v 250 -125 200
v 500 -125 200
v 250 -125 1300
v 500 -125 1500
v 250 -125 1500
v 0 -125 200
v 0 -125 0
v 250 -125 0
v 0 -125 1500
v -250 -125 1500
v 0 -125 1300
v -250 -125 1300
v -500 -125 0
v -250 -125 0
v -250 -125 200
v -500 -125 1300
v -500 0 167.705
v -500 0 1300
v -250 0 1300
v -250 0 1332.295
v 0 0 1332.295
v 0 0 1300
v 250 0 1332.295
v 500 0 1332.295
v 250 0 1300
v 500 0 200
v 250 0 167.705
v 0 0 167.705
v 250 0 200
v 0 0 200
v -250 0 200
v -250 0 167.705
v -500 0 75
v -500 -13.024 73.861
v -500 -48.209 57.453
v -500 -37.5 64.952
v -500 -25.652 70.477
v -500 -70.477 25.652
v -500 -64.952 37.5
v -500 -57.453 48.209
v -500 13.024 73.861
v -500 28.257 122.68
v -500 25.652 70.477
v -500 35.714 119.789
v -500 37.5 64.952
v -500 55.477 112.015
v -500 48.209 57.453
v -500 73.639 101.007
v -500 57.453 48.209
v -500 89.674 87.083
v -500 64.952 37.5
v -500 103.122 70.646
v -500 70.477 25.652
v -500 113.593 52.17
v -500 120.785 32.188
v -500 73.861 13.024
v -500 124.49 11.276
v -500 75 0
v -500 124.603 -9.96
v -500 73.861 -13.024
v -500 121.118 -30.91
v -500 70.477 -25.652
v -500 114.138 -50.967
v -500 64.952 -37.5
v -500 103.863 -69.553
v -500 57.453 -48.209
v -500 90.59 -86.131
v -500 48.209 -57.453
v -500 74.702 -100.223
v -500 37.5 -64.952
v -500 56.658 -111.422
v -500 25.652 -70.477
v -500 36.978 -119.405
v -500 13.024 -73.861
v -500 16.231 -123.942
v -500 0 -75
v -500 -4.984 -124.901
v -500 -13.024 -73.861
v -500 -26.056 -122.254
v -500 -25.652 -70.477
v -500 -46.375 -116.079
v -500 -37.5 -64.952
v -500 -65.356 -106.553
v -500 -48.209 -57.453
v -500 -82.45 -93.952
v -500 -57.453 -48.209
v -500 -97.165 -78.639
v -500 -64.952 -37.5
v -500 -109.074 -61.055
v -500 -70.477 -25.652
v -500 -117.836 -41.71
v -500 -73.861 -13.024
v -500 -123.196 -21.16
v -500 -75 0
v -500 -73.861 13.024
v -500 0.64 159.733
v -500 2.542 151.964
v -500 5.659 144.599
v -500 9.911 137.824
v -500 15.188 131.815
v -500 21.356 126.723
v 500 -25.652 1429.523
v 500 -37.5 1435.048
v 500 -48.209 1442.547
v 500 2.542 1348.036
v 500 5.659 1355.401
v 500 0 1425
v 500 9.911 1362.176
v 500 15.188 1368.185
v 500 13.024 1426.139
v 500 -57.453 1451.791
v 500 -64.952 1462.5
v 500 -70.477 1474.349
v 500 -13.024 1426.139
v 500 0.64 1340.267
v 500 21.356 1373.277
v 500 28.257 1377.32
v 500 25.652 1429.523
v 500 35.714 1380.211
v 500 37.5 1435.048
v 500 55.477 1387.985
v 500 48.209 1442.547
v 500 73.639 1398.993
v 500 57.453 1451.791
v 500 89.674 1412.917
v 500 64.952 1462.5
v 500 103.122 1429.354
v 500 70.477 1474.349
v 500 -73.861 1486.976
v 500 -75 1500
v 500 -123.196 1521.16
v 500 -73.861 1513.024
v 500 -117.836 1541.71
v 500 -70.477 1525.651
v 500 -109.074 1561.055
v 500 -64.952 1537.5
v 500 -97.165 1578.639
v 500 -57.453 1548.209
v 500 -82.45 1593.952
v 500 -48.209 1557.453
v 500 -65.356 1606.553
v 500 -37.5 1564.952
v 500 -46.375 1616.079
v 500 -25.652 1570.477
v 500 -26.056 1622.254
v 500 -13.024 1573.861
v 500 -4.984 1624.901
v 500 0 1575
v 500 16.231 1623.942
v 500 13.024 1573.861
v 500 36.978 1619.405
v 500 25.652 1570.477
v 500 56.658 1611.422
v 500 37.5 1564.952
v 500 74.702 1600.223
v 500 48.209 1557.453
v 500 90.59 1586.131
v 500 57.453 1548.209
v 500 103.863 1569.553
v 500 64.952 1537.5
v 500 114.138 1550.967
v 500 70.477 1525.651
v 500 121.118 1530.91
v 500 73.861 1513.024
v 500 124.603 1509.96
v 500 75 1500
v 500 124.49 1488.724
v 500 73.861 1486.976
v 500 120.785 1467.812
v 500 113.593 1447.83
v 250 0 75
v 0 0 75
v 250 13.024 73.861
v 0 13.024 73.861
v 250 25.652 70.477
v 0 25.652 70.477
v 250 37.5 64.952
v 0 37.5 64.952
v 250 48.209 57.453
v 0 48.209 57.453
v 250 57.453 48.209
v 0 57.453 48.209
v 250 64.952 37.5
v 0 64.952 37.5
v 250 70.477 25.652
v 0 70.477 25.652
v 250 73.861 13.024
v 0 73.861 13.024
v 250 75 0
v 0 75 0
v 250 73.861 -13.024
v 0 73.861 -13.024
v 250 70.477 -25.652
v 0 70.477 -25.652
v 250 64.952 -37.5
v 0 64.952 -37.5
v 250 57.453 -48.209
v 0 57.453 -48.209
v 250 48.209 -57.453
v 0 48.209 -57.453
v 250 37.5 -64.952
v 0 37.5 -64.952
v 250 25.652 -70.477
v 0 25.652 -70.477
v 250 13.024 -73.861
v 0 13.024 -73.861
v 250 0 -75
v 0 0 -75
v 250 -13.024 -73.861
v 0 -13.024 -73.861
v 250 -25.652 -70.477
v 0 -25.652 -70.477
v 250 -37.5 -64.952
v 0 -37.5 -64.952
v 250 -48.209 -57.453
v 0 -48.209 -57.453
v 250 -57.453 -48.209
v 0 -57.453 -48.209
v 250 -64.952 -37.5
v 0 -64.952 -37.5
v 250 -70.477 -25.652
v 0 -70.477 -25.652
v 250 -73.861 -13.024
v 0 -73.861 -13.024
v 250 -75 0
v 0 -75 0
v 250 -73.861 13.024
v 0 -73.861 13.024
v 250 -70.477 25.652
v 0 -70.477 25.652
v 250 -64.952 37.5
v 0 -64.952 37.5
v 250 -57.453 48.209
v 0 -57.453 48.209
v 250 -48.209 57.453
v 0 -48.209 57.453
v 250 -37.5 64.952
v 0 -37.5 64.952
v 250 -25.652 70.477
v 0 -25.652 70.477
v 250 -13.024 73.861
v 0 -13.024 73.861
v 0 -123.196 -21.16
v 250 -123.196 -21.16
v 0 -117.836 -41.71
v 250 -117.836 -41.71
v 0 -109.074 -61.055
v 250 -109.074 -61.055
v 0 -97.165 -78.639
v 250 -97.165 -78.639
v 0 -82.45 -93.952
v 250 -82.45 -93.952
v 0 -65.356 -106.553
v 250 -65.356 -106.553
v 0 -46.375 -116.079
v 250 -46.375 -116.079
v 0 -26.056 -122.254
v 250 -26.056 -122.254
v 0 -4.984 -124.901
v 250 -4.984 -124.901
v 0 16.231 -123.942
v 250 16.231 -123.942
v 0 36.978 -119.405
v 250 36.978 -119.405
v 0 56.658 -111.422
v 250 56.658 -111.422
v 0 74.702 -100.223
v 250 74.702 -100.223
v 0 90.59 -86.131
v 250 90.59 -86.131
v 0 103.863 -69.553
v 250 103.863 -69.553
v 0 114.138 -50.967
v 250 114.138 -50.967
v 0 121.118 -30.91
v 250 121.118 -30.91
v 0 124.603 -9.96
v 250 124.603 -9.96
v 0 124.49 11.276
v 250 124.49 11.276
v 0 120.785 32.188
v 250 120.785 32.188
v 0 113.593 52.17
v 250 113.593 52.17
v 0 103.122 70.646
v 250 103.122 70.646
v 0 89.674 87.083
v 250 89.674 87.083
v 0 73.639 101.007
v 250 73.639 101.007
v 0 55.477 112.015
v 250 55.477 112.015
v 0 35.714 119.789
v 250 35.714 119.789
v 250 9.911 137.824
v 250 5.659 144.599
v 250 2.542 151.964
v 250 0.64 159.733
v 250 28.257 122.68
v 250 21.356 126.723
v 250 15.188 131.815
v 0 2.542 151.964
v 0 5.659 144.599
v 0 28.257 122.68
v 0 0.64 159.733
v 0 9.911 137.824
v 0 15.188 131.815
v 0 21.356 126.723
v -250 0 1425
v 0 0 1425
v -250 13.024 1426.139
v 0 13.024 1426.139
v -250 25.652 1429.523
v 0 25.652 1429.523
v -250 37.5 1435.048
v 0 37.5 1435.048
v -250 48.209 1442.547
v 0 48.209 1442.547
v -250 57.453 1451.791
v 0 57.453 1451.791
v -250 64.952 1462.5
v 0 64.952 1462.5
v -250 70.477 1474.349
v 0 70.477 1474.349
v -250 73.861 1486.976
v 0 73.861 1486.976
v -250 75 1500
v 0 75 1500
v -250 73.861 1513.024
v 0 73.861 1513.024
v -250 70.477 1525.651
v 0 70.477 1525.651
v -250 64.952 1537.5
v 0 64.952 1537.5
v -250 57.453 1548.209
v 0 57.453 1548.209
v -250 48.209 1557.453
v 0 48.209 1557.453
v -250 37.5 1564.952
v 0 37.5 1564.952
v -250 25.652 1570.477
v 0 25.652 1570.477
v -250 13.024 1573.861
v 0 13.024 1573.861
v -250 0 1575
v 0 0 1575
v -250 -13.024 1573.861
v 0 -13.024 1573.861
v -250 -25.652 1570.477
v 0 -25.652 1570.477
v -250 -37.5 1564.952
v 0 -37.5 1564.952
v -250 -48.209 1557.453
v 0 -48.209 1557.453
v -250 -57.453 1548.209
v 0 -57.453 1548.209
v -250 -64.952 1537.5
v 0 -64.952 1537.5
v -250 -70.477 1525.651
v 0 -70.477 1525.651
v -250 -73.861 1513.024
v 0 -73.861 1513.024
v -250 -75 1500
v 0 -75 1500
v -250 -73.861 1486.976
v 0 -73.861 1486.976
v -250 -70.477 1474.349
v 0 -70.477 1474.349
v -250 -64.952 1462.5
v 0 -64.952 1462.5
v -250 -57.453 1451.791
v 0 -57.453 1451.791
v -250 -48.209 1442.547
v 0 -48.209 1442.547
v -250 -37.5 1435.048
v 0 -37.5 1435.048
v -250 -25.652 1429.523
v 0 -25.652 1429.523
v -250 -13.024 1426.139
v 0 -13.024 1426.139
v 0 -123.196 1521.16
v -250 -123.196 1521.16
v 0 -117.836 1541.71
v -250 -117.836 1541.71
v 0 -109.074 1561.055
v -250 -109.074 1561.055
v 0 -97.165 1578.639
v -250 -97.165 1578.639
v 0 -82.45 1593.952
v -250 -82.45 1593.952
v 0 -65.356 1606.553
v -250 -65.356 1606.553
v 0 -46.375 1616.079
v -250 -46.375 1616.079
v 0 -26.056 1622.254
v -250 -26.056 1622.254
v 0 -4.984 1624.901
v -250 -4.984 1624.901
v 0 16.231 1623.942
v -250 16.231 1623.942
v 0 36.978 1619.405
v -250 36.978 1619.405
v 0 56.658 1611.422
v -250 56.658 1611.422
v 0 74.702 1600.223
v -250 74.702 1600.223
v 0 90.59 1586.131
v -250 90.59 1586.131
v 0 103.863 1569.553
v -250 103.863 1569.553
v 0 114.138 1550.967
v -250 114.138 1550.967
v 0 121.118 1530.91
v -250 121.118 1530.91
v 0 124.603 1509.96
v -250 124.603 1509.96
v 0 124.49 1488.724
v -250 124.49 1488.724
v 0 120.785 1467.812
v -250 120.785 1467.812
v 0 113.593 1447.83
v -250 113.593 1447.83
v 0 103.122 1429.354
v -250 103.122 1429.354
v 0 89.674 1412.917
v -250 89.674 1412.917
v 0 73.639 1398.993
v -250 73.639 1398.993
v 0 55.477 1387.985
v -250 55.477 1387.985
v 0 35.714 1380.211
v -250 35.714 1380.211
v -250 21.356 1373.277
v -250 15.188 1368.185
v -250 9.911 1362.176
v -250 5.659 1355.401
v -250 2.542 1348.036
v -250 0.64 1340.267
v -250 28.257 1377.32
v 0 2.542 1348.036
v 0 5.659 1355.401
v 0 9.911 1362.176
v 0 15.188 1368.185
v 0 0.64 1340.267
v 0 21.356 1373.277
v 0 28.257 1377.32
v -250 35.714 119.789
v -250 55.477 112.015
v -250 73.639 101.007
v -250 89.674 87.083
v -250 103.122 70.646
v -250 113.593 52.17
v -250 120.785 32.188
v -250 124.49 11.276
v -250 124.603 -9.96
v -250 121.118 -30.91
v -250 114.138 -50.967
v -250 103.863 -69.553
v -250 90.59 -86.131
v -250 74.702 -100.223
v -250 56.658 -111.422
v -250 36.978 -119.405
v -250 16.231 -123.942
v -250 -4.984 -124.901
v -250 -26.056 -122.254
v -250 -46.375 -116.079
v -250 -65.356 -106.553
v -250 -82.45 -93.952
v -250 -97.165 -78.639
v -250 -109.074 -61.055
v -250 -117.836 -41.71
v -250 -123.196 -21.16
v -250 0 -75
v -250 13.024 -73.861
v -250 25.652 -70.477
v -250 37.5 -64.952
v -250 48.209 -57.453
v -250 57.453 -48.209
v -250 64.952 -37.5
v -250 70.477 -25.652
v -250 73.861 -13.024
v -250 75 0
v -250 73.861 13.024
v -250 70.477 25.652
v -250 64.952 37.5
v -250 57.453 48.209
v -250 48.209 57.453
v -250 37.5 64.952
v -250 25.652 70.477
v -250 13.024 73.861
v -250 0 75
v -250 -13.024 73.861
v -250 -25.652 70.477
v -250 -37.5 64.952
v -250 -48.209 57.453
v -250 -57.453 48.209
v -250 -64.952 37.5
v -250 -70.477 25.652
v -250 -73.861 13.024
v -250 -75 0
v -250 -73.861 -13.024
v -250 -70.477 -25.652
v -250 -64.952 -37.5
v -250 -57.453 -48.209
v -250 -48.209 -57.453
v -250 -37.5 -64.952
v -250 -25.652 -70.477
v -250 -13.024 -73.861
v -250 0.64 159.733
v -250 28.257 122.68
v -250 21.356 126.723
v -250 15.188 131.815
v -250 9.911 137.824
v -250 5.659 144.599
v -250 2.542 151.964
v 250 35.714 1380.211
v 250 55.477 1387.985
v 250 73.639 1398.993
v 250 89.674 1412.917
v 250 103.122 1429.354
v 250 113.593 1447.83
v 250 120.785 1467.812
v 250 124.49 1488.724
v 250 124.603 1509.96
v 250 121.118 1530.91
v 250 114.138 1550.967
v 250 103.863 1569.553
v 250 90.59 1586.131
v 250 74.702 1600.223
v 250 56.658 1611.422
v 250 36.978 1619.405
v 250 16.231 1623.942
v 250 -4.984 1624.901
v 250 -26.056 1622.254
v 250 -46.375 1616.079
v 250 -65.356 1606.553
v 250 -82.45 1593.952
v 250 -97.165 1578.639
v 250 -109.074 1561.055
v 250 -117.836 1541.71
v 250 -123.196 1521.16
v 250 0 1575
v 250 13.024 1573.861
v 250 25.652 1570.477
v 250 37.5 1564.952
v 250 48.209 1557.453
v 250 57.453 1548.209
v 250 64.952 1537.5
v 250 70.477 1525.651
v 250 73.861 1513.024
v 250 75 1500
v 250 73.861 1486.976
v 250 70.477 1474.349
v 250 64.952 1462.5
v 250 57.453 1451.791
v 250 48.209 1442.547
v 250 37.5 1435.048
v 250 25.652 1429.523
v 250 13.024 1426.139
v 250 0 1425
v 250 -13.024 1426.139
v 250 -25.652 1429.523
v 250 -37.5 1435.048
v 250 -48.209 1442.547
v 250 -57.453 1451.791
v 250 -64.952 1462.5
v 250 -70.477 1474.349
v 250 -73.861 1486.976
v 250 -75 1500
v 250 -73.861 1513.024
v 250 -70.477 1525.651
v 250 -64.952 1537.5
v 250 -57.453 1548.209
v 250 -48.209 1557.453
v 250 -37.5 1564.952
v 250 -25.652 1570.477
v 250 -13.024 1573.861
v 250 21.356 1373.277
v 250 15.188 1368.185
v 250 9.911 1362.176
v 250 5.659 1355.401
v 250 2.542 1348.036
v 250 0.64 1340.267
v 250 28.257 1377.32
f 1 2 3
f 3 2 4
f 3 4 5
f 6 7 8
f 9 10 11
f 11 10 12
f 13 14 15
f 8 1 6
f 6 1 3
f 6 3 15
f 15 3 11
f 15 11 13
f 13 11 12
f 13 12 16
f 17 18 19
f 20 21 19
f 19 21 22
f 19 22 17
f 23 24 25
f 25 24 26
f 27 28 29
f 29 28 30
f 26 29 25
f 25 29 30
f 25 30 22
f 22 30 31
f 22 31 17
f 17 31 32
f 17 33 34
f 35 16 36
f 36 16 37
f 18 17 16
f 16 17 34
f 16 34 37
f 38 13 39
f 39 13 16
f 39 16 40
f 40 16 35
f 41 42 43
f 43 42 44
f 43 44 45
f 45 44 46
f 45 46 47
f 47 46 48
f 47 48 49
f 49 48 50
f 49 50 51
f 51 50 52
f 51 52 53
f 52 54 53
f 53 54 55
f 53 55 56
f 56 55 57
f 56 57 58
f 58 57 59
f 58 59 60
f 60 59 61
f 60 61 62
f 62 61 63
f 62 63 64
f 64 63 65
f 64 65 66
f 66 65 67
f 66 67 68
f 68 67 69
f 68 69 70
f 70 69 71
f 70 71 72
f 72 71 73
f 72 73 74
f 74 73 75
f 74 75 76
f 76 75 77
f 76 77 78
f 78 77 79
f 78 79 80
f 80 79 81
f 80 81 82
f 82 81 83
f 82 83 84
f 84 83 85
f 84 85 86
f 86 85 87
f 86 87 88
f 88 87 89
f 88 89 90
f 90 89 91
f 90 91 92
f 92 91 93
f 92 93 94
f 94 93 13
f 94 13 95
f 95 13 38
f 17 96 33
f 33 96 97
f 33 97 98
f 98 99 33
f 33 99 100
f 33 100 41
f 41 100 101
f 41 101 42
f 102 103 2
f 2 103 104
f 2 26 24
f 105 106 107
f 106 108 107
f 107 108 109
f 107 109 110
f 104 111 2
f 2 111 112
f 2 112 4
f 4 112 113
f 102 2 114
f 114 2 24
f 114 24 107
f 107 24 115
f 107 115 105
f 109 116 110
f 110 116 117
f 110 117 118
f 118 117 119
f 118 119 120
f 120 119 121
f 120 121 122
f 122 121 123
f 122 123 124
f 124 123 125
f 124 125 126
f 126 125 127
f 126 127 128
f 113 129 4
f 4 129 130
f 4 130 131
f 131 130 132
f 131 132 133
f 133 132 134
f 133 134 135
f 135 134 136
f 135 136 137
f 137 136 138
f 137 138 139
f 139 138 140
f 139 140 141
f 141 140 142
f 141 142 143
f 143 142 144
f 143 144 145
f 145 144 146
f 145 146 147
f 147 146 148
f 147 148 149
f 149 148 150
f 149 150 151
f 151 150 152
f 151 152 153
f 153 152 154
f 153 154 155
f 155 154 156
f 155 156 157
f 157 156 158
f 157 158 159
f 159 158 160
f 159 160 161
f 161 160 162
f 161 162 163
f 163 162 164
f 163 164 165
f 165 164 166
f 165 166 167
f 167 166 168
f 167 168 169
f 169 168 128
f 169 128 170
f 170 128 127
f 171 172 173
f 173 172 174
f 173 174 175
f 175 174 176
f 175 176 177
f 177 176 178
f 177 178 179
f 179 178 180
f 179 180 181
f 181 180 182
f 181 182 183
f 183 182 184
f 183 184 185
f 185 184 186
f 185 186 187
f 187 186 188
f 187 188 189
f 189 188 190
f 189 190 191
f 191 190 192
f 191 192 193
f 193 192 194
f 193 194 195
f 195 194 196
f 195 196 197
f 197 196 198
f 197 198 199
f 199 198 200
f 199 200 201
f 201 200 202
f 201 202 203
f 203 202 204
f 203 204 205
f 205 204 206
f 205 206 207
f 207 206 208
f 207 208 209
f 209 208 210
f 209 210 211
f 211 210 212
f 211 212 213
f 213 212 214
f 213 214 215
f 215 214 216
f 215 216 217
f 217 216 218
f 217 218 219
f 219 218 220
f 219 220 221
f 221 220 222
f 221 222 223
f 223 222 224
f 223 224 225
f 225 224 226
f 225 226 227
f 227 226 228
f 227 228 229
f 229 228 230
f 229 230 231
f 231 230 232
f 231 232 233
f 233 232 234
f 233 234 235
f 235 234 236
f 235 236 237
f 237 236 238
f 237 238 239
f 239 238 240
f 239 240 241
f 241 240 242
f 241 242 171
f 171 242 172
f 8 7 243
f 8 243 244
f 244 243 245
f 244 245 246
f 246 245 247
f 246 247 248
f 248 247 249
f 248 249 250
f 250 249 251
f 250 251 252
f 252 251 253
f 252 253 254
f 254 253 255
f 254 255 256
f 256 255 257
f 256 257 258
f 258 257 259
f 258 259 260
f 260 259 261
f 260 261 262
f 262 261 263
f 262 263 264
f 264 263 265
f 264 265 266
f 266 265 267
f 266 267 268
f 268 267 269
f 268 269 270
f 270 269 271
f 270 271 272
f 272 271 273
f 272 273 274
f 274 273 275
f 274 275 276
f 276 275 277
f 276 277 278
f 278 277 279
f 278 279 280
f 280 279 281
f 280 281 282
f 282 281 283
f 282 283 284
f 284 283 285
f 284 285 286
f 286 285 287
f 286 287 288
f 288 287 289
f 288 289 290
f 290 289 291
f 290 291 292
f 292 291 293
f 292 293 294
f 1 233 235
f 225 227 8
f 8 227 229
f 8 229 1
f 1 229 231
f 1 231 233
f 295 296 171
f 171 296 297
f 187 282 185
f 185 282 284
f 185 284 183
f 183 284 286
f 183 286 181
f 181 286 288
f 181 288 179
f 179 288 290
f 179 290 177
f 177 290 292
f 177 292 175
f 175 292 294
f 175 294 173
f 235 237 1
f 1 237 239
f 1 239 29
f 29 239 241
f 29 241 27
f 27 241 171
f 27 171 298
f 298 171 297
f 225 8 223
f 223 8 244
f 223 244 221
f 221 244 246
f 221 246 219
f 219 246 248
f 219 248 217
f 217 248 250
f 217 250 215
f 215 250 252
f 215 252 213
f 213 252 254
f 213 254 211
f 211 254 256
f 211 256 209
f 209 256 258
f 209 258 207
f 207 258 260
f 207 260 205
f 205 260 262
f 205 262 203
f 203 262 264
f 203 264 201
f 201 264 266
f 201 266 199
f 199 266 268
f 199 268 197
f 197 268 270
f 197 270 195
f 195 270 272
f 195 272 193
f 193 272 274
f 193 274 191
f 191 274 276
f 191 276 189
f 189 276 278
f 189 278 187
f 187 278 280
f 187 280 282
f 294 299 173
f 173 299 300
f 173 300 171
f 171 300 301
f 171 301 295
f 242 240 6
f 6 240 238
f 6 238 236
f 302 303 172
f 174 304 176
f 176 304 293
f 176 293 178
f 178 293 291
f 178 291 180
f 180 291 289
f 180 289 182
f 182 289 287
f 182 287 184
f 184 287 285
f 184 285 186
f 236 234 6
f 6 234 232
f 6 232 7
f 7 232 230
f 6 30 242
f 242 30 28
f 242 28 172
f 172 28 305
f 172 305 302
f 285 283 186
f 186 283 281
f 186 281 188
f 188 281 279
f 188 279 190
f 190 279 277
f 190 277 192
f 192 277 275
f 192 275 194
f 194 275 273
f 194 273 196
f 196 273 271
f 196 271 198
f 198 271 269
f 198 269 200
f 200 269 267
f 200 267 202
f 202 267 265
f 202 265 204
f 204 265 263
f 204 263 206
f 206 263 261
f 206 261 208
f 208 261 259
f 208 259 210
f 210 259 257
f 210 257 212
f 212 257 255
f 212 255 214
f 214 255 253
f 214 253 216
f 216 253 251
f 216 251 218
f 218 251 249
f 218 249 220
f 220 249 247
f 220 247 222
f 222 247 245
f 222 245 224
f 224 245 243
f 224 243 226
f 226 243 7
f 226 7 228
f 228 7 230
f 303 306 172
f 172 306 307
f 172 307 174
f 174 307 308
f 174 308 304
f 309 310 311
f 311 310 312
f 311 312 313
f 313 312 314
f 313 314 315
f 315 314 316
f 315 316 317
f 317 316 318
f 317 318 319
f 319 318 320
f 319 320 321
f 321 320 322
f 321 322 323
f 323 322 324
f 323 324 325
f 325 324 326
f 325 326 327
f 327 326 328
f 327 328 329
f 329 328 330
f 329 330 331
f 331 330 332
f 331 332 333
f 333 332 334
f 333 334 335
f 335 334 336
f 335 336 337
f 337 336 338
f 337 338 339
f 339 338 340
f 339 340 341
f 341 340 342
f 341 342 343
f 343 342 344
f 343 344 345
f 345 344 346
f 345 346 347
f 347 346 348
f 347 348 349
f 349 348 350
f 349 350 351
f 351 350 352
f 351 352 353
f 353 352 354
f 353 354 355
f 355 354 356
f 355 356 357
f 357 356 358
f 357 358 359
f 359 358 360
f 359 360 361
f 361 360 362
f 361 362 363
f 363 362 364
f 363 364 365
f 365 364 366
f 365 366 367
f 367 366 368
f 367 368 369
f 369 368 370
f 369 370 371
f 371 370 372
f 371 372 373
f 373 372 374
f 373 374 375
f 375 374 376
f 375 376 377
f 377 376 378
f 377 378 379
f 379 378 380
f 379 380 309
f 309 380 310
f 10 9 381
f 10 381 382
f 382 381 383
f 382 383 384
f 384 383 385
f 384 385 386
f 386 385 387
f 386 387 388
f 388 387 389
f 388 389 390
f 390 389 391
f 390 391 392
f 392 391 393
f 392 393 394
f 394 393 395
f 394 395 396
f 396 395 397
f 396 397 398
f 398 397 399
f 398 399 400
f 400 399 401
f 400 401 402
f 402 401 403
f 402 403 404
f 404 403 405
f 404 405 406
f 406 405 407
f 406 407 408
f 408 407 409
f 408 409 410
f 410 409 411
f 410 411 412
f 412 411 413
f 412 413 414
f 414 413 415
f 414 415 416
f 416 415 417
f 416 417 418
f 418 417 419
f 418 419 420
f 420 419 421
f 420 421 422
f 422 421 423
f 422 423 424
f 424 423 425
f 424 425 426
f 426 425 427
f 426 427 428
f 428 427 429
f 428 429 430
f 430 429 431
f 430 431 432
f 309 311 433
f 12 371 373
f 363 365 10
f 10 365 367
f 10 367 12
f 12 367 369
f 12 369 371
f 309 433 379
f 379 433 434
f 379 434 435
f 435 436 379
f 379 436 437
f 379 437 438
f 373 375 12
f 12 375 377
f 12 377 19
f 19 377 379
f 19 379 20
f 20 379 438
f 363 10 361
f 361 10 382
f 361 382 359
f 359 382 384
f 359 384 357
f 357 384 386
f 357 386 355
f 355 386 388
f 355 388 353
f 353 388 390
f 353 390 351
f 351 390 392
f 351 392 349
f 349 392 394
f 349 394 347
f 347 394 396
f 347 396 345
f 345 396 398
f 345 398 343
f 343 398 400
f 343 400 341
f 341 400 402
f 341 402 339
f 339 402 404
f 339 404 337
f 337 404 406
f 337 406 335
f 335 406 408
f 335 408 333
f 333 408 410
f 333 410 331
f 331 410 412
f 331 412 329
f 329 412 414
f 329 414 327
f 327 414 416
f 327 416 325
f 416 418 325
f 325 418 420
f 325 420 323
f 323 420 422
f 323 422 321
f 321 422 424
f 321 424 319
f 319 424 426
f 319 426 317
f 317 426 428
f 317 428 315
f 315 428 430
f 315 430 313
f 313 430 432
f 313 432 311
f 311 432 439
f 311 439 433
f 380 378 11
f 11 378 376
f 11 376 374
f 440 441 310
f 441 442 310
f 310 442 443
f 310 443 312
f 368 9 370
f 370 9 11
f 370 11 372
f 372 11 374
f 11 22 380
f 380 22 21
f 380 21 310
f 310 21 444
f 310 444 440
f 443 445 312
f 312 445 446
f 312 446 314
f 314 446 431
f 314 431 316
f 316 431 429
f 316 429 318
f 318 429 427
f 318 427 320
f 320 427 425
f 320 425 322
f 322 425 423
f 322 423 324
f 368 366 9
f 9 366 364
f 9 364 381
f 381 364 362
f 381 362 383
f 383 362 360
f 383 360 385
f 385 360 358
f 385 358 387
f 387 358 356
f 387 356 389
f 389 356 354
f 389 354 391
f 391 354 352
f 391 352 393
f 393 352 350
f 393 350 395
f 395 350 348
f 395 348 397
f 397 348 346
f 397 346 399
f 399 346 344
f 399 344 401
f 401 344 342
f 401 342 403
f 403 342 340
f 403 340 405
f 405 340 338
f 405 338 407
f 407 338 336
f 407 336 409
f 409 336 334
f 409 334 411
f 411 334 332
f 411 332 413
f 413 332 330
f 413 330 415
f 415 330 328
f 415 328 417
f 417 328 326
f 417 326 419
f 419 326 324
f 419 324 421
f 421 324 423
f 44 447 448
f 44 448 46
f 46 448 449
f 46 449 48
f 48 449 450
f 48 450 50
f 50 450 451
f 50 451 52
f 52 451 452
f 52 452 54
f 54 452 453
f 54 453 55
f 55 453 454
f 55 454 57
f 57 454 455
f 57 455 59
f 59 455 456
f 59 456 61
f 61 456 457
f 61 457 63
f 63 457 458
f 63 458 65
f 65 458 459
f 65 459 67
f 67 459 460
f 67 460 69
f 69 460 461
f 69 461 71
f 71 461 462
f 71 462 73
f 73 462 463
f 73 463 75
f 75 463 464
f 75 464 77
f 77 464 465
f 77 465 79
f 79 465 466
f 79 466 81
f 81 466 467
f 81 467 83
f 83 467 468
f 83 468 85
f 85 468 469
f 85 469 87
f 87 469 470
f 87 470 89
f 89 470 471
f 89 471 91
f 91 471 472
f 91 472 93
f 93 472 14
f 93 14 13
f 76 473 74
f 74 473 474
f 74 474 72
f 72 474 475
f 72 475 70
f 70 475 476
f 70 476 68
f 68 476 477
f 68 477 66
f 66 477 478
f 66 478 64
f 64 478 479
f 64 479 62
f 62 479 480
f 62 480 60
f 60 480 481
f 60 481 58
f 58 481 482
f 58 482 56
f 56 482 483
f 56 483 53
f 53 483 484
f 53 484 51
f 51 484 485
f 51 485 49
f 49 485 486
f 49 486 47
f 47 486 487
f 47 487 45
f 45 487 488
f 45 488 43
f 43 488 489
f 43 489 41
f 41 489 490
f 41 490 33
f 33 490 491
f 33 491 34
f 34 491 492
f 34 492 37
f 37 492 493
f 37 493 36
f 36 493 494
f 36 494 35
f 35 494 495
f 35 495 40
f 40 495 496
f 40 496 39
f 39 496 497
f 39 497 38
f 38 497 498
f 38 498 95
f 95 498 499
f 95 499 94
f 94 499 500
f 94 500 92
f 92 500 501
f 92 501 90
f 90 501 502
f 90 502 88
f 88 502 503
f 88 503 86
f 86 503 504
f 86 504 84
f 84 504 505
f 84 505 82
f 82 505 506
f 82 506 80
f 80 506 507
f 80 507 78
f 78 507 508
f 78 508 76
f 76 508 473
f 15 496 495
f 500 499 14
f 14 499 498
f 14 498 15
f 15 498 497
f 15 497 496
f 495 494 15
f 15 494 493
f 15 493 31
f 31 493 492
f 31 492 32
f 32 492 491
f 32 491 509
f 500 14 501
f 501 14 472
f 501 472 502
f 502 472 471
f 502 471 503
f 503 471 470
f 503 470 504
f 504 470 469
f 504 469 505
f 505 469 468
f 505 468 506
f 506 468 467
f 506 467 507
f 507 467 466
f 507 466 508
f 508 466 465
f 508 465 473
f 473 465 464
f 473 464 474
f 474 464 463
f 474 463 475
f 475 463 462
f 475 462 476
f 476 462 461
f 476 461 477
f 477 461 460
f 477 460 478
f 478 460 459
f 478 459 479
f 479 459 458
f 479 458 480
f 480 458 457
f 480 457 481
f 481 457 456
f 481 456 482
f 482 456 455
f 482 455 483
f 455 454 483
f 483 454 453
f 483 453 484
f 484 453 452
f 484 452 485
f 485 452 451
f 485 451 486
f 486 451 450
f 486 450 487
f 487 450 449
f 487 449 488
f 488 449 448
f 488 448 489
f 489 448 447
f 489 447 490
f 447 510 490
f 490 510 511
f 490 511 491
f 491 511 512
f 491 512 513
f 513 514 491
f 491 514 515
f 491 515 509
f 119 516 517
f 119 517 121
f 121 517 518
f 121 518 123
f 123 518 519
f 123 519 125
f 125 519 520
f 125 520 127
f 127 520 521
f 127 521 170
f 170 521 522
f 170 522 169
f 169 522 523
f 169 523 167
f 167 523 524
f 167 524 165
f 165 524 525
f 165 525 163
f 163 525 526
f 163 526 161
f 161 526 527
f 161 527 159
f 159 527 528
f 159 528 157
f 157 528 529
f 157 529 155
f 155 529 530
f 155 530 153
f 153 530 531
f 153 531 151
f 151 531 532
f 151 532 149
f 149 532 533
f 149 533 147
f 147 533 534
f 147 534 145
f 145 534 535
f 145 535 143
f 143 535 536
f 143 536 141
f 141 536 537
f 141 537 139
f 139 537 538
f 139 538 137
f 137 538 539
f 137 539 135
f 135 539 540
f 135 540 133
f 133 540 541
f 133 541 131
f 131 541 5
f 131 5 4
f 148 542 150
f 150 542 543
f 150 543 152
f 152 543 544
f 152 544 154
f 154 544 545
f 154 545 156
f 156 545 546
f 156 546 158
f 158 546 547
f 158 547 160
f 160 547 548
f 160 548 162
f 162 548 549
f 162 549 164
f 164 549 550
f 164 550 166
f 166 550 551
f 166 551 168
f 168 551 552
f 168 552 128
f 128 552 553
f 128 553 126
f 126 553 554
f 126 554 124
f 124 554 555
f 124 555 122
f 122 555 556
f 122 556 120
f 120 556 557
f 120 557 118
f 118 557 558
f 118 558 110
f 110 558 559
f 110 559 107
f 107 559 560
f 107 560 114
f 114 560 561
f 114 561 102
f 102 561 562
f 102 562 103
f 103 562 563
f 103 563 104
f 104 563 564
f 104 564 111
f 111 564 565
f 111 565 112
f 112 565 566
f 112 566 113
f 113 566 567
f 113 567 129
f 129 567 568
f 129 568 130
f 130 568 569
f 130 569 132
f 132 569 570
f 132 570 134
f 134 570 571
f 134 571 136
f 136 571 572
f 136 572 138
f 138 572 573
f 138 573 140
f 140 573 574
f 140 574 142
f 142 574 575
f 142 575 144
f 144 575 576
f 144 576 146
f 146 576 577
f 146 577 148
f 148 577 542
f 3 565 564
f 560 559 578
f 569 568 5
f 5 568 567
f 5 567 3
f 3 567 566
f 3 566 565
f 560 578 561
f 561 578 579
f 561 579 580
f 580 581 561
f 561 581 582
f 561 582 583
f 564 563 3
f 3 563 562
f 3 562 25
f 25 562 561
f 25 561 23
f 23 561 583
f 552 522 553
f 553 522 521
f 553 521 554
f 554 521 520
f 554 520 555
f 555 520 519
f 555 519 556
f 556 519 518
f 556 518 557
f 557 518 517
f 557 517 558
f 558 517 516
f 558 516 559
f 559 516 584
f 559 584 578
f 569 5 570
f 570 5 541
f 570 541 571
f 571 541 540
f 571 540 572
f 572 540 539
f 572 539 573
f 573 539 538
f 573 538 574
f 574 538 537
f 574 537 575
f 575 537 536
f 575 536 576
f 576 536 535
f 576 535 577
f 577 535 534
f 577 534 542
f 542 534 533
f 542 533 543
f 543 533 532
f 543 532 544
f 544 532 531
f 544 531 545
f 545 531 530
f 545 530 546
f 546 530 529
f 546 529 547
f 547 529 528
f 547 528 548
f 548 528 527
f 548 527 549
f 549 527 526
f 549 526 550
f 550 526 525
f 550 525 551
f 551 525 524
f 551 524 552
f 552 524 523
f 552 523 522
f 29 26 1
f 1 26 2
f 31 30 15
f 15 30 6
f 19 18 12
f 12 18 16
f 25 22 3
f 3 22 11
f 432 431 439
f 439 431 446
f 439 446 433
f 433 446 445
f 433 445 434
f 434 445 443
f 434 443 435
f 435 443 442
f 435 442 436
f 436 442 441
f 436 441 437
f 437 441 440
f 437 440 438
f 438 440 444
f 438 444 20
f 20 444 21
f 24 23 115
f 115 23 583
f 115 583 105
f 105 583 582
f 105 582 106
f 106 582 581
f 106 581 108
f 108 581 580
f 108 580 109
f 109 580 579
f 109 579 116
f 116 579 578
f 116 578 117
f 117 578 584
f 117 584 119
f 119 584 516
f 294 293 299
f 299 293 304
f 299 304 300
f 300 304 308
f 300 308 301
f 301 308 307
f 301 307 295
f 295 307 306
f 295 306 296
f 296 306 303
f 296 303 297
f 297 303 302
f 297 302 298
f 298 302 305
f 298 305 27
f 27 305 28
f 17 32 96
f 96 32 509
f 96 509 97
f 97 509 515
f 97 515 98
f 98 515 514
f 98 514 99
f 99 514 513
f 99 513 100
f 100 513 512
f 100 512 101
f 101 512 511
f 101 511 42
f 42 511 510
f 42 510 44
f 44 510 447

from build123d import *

# Parameters (mm, degrees)
BOSS_EXTRUDE1_DEPTH     = 500
BOSS_EXTRUDE2_START     = 250
SKETCH1_3_R             = 75
BOSS_EXTRUDE2_DEPTH     = 250
SKETCH1_4_R             = 75
BOSS_EXTRUDE3_DEPTH     = 250
BOSS_EXTRUDE4_START     = -250
SKETCH1_5_R             = 75
BOSS_EXTRUDE4_DEPTH     = 250
BOSS_EXTRUDE5_START     = 500
SKETCH1_6_R             = 75
BOSS_EXTRUDE5_DEPTH     = 250
CUT_EXTRUDE1_DEPTH      = 250
CUT_EXTRUDE1_DEPTH_BACK = 250
FILLET1_R               = 50


with BuildPart() as part:
    # Sketch1 → Boss-Extrude1 (new, symmetric)
    with BuildSketch(Plane(origin=(0, 0, 0), x_dir=(0, 0, -1), z_dir=(1, 0, 0))):
        with BuildLine():
            ThreePointArc((0, -125), (-88.388347648, -88.388347648), (-125, 0))
            Line((-125, 0), (-1375, 0))
            ThreePointArc((-1375, 0), (-1411.611652352, -88.388347648), (-1500, -125))
            Line((-1500, -125), (0, -125))
        make_face()
    extrude(amount=BOSS_EXTRUDE1_DEPTH, both=True)

    # Sketch1<3> → Boss-Extrude2 (add)
    with BuildSketch(Plane(origin=(0, 0, 0), x_dir=(0, 0, -1), z_dir=(1, 0, 0)).offset(BOSS_EXTRUDE2_START)):
        with BuildLine():
            ThreePointArc((125, 0), (0, 125), (-125, 0))
            ThreePointArc((-125, 0), (-88.388347648, -88.388347648), (0, -125))
            ThreePointArc((0, -125), (88.388347648, -88.388347648), (125, 0))
        make_face()
        Circle(SKETCH1_3_R, mode=Mode.SUBTRACT)
    extrude(amount=-BOSS_EXTRUDE2_DEPTH)

    # Sketch1<4> → Boss-Extrude3 (add)
    with BuildSketch(Plane(origin=(0, 0, 0), x_dir=(0, 0, -1), z_dir=(1, 0, 0))):
        with BuildLine():
            ThreePointArc((-1500, -125), (-1411.611652352, -88.388347648), (-1375, 0))
            ThreePointArc((-1375, 0), (-1588.388347648, 88.388347648), (-1500, -125))
        make_face()
        with Locations((-1500, 0)):
            Circle(SKETCH1_4_R, mode=Mode.SUBTRACT)
    extrude(amount=-BOSS_EXTRUDE3_DEPTH)

    # Sketch1<5> → Boss-Extrude4 (add)
    with BuildSketch(Plane(origin=(0, 0, 0), x_dir=(0, 0, -1), z_dir=(1, 0, 0)).offset(BOSS_EXTRUDE4_START)):
        with BuildLine():
            ThreePointArc((125, 0), (0, 125), (-125, 0))
            ThreePointArc((-125, 0), (-88.388347648, -88.388347648), (0, -125))
            ThreePointArc((0, -125), (88.388347648, -88.388347648), (125, 0))
        make_face()
        Circle(SKETCH1_5_R, mode=Mode.SUBTRACT)
    extrude(amount=-BOSS_EXTRUDE4_DEPTH)

    # Sketch1<6> → Boss-Extrude5 (add)
    with BuildSketch(Plane(origin=(0, 0, 0), x_dir=(0, 0, -1), z_dir=(1, 0, 0)).offset(BOSS_EXTRUDE5_START)):
        with BuildLine():
            ThreePointArc((-1500, -125), (-1411.611652352, -88.388347648), (-1375, 0))
            ThreePointArc((-1375, 0), (-1588.388347648, 88.388347648), (-1500, -125))
        make_face()
        with Locations((-1500, 0)):
            Circle(SKETCH1_6_R, mode=Mode.SUBTRACT)
    extrude(amount=-BOSS_EXTRUDE5_DEPTH)

    # Sketch2 → Cut-Extrude1 (cut, two sides: drawn at the far end of the back side and taken through both)
    with BuildSketch(Plane(origin=(0, 0, 0), x_dir=(1, 0, 0), z_dir=(0, 1, 0)).offset(-CUT_EXTRUDE1_DEPTH_BACK)):
        Polygon((-250, 550.682417094), (-250, -200), (0, -200), (0, 342.970708342), (250, 342.970708342), (250, -200), (760.214276003, -200), (760.214276003, 550.682417094), align=None)
        Polygon((250, -2214.630516483), (250, -1300), (0, -1300), (0, -1946.053133522), (-250, -1946.053133522), (-250, -1300), (-708.69599817, -1300), (-708.69599817, -2214.630516483), align=None)
    extrude(amount=CUT_EXTRUDE1_DEPTH + CUT_EXTRUDE1_DEPTH_BACK, mode=Mode.SUBTRACT)

    # Fillet1
    fillet1_edges = [part.edges().sort_by_distance(p)[0] for p in [
        (-125, 0, 1375),
        (375, 0, 1375),
        (125, 0, 125),
        (-375, 0, 125),
    ]]
    fillet(fillet1_edges, radius=FILLET1_R)


solid = part.part
